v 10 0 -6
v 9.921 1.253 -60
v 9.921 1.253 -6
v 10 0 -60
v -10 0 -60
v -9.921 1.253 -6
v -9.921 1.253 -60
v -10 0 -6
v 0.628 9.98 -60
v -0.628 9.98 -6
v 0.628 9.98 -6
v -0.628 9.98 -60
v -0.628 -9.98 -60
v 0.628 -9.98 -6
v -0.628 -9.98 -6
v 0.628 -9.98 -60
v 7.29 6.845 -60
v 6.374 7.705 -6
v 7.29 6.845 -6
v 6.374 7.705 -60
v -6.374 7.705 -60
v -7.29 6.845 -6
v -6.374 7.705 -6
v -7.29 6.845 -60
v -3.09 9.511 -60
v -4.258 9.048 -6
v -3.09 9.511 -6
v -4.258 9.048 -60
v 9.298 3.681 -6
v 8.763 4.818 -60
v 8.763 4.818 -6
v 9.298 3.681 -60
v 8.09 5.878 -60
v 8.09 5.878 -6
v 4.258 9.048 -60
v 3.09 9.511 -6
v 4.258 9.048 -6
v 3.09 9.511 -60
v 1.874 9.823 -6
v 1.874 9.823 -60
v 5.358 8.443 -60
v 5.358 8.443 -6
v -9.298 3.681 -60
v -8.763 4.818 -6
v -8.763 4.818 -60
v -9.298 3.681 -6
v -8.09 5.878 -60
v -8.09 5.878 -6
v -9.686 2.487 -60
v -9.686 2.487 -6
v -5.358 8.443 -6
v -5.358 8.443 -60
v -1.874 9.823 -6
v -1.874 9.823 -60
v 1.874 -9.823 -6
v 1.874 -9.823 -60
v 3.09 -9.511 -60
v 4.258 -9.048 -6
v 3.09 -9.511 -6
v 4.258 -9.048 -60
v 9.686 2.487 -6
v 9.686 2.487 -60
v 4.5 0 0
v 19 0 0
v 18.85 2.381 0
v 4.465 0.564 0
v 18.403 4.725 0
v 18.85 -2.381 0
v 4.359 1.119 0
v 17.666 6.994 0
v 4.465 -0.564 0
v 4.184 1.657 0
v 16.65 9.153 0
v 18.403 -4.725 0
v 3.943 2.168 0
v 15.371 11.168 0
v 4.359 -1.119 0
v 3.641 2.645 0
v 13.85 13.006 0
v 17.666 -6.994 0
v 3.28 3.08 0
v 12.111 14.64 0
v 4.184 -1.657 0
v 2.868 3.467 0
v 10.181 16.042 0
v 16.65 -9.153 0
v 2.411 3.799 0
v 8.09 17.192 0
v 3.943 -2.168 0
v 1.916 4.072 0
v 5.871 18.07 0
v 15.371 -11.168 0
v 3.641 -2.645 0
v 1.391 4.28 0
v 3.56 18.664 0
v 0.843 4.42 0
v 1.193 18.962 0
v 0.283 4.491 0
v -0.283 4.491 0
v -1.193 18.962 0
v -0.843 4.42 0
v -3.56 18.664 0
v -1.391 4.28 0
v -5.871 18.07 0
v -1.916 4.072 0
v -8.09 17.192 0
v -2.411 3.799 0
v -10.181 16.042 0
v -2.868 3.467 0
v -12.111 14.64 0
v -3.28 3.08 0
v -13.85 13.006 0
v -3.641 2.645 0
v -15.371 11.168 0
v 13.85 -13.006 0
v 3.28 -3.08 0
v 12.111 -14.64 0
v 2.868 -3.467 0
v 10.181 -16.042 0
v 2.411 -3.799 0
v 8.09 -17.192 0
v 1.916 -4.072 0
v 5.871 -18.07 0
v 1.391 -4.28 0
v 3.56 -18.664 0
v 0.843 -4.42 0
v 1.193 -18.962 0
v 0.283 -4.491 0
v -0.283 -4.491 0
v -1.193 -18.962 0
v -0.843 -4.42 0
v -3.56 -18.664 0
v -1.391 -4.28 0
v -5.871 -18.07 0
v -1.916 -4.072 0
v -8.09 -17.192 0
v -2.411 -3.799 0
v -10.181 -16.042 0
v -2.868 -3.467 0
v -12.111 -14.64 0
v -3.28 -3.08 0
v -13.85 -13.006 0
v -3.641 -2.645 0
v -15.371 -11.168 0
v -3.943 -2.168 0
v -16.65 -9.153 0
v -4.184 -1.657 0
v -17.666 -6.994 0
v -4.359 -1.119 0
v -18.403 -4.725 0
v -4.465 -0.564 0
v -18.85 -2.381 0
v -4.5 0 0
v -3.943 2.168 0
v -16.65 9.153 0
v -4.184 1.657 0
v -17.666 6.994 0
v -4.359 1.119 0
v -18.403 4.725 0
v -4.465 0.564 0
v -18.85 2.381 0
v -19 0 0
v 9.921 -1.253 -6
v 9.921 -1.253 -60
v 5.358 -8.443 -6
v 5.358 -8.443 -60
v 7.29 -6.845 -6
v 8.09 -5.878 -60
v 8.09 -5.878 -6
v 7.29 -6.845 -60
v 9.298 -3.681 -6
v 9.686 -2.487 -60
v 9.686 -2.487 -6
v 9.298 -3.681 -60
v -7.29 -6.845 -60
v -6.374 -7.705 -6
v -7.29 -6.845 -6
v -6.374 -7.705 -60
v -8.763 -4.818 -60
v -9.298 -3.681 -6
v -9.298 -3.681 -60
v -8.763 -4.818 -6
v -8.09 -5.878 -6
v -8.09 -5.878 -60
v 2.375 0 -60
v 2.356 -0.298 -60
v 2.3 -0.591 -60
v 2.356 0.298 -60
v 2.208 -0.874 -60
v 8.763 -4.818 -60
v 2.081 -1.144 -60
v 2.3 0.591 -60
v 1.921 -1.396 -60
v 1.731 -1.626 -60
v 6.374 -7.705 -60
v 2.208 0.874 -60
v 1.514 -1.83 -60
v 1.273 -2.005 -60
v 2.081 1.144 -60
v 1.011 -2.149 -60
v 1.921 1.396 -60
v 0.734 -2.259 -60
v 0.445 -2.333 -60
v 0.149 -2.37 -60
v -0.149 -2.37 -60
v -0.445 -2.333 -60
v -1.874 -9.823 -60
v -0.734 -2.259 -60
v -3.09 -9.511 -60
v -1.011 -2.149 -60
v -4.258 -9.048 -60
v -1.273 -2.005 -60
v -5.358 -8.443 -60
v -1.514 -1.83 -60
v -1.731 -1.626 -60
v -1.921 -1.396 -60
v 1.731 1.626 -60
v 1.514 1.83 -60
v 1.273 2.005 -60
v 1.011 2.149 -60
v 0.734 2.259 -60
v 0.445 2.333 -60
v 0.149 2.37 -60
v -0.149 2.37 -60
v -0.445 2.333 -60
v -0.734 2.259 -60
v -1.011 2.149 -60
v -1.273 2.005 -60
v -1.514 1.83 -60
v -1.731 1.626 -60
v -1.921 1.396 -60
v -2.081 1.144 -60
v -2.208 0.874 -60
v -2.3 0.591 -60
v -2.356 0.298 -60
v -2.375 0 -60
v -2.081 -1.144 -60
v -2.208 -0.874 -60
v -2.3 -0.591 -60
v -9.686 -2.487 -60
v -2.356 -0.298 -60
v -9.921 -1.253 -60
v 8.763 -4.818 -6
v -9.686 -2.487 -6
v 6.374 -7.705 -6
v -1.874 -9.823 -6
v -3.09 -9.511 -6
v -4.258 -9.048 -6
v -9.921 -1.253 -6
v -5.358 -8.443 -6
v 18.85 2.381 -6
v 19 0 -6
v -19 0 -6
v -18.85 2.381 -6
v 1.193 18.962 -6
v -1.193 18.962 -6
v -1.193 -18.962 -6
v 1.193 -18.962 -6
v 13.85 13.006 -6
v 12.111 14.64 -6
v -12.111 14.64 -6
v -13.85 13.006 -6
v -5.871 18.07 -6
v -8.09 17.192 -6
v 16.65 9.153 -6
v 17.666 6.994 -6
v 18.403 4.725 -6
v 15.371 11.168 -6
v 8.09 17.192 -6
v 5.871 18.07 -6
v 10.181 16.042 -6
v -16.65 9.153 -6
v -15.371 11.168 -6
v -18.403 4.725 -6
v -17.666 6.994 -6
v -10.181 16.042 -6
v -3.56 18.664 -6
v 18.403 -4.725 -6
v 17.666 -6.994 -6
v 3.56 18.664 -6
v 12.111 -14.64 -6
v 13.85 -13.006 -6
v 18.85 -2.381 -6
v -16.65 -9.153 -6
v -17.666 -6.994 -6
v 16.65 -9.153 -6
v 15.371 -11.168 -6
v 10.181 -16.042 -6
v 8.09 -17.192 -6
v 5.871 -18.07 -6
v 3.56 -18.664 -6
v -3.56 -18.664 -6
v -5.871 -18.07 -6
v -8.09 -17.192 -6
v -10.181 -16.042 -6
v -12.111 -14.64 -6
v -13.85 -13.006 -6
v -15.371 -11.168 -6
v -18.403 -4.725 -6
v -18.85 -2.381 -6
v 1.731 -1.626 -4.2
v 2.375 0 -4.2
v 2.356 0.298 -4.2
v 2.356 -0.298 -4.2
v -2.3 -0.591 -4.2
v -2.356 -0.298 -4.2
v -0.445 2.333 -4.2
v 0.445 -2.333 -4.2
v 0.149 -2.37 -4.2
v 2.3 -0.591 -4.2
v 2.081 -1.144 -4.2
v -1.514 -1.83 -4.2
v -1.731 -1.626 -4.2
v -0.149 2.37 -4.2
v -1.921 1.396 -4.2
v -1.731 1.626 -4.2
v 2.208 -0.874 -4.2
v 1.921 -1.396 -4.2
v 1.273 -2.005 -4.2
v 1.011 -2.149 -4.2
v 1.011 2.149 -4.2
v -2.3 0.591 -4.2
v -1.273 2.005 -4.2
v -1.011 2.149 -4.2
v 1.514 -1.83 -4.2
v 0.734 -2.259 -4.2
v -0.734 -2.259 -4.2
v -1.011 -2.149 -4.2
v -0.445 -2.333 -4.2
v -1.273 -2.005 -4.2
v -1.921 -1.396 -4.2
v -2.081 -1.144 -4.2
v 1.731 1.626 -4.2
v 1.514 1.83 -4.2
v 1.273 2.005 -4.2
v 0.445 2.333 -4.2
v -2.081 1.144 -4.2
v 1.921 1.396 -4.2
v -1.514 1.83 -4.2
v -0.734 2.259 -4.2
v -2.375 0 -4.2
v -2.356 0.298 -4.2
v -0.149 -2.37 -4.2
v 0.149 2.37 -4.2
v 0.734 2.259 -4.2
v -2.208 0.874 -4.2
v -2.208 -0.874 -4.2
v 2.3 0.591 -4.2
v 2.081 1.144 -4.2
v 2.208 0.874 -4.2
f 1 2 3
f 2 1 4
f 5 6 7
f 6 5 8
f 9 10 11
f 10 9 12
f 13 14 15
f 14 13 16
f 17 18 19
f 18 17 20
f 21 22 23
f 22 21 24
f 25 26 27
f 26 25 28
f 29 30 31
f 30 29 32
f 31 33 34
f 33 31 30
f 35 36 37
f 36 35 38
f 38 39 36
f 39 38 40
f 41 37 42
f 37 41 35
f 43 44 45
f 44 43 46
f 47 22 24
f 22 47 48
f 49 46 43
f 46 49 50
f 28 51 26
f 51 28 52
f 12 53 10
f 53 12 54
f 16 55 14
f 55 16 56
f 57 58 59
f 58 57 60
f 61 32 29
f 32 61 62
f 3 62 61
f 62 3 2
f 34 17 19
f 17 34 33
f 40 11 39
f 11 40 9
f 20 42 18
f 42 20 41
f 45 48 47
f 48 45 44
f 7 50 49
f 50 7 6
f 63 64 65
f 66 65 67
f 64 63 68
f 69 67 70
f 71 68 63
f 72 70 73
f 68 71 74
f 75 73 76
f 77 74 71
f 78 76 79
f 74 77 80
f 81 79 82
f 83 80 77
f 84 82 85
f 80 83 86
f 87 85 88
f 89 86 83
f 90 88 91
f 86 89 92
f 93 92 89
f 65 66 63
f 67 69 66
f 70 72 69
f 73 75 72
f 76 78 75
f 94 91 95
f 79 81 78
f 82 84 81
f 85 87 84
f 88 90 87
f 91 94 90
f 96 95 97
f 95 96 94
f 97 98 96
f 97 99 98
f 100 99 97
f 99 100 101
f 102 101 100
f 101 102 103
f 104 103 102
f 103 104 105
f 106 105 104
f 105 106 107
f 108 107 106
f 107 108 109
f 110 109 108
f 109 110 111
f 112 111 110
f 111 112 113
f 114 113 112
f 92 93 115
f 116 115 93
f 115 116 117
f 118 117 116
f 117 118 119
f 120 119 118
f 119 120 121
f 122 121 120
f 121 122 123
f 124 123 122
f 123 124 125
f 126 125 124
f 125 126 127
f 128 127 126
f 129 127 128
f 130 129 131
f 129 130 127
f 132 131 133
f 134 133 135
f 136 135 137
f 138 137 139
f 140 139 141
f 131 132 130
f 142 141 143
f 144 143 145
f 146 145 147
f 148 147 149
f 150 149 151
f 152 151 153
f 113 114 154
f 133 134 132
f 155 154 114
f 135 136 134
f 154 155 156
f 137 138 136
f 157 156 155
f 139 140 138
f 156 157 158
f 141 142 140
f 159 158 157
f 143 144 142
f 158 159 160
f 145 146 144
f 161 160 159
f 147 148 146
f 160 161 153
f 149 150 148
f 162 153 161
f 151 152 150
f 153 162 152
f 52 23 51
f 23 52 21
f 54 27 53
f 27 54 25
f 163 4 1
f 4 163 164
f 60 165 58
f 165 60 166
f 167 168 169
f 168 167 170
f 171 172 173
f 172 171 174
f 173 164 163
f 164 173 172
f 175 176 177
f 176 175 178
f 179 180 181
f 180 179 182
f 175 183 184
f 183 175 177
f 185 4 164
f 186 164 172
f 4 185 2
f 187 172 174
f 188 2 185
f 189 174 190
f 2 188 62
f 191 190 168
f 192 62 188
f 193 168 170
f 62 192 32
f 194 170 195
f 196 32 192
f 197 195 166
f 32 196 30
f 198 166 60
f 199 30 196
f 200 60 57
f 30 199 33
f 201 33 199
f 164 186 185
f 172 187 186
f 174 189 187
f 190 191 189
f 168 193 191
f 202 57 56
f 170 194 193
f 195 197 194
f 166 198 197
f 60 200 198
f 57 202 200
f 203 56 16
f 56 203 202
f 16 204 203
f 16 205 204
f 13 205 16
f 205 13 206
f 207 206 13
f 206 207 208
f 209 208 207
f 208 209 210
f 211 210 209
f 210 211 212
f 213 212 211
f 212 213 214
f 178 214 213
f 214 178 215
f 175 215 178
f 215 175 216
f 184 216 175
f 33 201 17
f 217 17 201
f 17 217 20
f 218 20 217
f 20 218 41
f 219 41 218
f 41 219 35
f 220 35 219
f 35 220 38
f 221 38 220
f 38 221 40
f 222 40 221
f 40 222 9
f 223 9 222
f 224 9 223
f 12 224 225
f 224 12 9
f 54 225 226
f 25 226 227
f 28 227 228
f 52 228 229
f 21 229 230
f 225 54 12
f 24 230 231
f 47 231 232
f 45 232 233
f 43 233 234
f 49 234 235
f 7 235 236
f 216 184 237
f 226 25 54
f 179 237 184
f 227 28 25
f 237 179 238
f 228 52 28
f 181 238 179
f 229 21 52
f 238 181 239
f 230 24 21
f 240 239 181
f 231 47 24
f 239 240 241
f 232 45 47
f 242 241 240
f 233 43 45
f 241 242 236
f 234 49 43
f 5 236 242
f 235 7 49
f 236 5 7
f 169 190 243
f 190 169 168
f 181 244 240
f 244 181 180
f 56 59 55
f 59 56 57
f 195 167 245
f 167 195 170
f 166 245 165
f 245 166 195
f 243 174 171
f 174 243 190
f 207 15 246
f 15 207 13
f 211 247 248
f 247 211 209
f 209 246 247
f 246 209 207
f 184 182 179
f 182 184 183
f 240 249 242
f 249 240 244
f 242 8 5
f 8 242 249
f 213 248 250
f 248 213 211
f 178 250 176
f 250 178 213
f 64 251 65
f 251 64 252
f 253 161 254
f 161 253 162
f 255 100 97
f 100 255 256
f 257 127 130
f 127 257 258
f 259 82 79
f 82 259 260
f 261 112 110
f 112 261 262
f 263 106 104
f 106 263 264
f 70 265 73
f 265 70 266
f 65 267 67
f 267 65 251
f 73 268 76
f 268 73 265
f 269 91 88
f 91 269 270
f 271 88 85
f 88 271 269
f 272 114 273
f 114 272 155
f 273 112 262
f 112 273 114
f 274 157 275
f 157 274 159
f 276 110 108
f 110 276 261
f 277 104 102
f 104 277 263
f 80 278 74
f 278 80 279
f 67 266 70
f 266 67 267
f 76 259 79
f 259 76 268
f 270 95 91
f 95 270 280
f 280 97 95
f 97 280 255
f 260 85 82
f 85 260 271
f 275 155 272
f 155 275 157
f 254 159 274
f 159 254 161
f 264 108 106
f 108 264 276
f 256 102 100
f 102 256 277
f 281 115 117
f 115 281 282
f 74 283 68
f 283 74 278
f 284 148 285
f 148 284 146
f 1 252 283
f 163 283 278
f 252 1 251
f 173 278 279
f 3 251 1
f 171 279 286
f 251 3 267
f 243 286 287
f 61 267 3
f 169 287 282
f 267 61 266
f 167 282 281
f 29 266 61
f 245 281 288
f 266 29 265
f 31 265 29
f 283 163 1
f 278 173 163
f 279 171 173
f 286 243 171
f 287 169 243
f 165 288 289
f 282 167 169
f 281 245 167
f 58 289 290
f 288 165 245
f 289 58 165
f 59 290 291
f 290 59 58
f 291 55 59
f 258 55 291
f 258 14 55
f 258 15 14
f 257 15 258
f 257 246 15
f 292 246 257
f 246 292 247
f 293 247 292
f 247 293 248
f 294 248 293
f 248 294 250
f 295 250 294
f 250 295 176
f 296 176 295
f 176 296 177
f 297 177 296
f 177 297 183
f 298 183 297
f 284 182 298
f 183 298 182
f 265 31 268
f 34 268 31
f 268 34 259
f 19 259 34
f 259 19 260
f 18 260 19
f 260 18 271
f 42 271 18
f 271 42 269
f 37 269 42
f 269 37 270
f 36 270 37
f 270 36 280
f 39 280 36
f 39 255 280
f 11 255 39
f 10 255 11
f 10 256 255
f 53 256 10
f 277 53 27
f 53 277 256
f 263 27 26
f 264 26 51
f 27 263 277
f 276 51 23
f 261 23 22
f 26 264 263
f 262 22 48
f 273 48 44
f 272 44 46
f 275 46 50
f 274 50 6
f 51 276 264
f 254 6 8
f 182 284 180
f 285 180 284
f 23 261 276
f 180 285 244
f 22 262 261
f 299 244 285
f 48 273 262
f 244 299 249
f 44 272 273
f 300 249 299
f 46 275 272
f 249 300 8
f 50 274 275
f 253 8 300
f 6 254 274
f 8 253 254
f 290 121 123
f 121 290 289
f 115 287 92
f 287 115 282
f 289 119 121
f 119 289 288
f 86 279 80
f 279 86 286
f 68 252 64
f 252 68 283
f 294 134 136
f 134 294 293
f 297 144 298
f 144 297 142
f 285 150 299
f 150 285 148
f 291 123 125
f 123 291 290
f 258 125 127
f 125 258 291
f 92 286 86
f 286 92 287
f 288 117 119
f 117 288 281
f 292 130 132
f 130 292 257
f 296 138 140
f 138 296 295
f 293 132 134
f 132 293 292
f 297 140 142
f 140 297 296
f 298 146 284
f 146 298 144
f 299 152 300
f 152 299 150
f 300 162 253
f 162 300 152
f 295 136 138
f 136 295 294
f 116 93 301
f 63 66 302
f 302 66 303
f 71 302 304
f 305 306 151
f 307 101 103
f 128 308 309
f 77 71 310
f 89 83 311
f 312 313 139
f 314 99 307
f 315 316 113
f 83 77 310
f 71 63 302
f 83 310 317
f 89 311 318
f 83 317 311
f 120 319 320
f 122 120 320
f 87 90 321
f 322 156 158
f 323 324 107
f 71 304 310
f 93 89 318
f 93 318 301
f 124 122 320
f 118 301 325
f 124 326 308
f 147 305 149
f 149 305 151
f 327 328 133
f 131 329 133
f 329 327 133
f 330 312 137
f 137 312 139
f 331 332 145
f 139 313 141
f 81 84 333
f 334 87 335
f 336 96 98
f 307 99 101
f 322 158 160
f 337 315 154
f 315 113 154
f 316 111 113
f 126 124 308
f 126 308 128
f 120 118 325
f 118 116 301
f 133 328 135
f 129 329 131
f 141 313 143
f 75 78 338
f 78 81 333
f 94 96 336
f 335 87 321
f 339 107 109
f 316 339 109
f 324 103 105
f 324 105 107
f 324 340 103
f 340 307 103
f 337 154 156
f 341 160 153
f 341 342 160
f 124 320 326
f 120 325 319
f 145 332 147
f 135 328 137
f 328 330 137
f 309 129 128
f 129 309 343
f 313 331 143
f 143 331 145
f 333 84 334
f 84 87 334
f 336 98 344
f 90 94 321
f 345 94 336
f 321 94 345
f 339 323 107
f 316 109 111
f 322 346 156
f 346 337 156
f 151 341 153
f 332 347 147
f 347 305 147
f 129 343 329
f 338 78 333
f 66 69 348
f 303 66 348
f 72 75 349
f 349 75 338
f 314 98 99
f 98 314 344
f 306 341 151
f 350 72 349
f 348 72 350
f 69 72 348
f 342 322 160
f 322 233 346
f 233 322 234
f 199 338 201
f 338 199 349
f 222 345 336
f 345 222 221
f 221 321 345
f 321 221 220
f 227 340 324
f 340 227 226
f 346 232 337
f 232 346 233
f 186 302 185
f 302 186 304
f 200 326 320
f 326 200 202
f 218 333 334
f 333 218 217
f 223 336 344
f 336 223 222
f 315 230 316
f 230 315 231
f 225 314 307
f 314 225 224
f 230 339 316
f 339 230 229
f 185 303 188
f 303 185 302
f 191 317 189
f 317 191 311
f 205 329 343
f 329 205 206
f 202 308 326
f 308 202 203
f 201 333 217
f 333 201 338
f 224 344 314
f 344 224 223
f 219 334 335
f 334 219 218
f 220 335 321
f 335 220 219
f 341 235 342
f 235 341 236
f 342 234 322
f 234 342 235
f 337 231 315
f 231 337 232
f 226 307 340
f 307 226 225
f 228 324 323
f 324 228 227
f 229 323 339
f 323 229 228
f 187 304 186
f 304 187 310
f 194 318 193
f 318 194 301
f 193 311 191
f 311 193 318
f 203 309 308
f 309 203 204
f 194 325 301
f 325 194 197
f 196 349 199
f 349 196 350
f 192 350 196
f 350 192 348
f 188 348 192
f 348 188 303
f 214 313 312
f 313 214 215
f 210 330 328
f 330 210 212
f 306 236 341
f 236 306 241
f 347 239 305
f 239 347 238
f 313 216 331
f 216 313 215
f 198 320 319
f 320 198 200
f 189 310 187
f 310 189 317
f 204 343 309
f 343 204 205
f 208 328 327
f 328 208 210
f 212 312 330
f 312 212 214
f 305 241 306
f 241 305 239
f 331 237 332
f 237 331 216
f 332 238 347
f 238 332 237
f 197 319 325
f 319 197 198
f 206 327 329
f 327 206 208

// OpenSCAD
$fn = 50;


difference() {
	union() {
		translate(v = [0, 0, -60.0000000000]) {
			cylinder(h = 60, r = 10.0000000000);
		}
		translate(v = [0, 0, -6.0000000000]) {
			cylinder(h = 6, r = 19.0000000000);
		}
	}
	union() {
		translate(v = [0, 0, 0]) {
			rotate(a = [0, 0, 0]) {
				difference() {
					union() {
						#translate(v = [0, 0, -60.0000000000]) {
							cylinder(h = 60, r = 2.2500000000);
						}
						#translate(v = [0, 0, -4.2000000000]) {
							cylinder(h = 4.2000000000, r1 = 2.3750000000, r2 = 4.5000000000);
						}
						#translate(v = [0, 0, -60.0000000000]) {
							cylinder(h = 60, r = 2.3750000000);
						}
						#translate(v = [0, 0, -60.0000000000]) {
							cylinder(h = 60, r = 2.2500000000);
						}
					}
					union();
				}
			}
		}
	}
}
